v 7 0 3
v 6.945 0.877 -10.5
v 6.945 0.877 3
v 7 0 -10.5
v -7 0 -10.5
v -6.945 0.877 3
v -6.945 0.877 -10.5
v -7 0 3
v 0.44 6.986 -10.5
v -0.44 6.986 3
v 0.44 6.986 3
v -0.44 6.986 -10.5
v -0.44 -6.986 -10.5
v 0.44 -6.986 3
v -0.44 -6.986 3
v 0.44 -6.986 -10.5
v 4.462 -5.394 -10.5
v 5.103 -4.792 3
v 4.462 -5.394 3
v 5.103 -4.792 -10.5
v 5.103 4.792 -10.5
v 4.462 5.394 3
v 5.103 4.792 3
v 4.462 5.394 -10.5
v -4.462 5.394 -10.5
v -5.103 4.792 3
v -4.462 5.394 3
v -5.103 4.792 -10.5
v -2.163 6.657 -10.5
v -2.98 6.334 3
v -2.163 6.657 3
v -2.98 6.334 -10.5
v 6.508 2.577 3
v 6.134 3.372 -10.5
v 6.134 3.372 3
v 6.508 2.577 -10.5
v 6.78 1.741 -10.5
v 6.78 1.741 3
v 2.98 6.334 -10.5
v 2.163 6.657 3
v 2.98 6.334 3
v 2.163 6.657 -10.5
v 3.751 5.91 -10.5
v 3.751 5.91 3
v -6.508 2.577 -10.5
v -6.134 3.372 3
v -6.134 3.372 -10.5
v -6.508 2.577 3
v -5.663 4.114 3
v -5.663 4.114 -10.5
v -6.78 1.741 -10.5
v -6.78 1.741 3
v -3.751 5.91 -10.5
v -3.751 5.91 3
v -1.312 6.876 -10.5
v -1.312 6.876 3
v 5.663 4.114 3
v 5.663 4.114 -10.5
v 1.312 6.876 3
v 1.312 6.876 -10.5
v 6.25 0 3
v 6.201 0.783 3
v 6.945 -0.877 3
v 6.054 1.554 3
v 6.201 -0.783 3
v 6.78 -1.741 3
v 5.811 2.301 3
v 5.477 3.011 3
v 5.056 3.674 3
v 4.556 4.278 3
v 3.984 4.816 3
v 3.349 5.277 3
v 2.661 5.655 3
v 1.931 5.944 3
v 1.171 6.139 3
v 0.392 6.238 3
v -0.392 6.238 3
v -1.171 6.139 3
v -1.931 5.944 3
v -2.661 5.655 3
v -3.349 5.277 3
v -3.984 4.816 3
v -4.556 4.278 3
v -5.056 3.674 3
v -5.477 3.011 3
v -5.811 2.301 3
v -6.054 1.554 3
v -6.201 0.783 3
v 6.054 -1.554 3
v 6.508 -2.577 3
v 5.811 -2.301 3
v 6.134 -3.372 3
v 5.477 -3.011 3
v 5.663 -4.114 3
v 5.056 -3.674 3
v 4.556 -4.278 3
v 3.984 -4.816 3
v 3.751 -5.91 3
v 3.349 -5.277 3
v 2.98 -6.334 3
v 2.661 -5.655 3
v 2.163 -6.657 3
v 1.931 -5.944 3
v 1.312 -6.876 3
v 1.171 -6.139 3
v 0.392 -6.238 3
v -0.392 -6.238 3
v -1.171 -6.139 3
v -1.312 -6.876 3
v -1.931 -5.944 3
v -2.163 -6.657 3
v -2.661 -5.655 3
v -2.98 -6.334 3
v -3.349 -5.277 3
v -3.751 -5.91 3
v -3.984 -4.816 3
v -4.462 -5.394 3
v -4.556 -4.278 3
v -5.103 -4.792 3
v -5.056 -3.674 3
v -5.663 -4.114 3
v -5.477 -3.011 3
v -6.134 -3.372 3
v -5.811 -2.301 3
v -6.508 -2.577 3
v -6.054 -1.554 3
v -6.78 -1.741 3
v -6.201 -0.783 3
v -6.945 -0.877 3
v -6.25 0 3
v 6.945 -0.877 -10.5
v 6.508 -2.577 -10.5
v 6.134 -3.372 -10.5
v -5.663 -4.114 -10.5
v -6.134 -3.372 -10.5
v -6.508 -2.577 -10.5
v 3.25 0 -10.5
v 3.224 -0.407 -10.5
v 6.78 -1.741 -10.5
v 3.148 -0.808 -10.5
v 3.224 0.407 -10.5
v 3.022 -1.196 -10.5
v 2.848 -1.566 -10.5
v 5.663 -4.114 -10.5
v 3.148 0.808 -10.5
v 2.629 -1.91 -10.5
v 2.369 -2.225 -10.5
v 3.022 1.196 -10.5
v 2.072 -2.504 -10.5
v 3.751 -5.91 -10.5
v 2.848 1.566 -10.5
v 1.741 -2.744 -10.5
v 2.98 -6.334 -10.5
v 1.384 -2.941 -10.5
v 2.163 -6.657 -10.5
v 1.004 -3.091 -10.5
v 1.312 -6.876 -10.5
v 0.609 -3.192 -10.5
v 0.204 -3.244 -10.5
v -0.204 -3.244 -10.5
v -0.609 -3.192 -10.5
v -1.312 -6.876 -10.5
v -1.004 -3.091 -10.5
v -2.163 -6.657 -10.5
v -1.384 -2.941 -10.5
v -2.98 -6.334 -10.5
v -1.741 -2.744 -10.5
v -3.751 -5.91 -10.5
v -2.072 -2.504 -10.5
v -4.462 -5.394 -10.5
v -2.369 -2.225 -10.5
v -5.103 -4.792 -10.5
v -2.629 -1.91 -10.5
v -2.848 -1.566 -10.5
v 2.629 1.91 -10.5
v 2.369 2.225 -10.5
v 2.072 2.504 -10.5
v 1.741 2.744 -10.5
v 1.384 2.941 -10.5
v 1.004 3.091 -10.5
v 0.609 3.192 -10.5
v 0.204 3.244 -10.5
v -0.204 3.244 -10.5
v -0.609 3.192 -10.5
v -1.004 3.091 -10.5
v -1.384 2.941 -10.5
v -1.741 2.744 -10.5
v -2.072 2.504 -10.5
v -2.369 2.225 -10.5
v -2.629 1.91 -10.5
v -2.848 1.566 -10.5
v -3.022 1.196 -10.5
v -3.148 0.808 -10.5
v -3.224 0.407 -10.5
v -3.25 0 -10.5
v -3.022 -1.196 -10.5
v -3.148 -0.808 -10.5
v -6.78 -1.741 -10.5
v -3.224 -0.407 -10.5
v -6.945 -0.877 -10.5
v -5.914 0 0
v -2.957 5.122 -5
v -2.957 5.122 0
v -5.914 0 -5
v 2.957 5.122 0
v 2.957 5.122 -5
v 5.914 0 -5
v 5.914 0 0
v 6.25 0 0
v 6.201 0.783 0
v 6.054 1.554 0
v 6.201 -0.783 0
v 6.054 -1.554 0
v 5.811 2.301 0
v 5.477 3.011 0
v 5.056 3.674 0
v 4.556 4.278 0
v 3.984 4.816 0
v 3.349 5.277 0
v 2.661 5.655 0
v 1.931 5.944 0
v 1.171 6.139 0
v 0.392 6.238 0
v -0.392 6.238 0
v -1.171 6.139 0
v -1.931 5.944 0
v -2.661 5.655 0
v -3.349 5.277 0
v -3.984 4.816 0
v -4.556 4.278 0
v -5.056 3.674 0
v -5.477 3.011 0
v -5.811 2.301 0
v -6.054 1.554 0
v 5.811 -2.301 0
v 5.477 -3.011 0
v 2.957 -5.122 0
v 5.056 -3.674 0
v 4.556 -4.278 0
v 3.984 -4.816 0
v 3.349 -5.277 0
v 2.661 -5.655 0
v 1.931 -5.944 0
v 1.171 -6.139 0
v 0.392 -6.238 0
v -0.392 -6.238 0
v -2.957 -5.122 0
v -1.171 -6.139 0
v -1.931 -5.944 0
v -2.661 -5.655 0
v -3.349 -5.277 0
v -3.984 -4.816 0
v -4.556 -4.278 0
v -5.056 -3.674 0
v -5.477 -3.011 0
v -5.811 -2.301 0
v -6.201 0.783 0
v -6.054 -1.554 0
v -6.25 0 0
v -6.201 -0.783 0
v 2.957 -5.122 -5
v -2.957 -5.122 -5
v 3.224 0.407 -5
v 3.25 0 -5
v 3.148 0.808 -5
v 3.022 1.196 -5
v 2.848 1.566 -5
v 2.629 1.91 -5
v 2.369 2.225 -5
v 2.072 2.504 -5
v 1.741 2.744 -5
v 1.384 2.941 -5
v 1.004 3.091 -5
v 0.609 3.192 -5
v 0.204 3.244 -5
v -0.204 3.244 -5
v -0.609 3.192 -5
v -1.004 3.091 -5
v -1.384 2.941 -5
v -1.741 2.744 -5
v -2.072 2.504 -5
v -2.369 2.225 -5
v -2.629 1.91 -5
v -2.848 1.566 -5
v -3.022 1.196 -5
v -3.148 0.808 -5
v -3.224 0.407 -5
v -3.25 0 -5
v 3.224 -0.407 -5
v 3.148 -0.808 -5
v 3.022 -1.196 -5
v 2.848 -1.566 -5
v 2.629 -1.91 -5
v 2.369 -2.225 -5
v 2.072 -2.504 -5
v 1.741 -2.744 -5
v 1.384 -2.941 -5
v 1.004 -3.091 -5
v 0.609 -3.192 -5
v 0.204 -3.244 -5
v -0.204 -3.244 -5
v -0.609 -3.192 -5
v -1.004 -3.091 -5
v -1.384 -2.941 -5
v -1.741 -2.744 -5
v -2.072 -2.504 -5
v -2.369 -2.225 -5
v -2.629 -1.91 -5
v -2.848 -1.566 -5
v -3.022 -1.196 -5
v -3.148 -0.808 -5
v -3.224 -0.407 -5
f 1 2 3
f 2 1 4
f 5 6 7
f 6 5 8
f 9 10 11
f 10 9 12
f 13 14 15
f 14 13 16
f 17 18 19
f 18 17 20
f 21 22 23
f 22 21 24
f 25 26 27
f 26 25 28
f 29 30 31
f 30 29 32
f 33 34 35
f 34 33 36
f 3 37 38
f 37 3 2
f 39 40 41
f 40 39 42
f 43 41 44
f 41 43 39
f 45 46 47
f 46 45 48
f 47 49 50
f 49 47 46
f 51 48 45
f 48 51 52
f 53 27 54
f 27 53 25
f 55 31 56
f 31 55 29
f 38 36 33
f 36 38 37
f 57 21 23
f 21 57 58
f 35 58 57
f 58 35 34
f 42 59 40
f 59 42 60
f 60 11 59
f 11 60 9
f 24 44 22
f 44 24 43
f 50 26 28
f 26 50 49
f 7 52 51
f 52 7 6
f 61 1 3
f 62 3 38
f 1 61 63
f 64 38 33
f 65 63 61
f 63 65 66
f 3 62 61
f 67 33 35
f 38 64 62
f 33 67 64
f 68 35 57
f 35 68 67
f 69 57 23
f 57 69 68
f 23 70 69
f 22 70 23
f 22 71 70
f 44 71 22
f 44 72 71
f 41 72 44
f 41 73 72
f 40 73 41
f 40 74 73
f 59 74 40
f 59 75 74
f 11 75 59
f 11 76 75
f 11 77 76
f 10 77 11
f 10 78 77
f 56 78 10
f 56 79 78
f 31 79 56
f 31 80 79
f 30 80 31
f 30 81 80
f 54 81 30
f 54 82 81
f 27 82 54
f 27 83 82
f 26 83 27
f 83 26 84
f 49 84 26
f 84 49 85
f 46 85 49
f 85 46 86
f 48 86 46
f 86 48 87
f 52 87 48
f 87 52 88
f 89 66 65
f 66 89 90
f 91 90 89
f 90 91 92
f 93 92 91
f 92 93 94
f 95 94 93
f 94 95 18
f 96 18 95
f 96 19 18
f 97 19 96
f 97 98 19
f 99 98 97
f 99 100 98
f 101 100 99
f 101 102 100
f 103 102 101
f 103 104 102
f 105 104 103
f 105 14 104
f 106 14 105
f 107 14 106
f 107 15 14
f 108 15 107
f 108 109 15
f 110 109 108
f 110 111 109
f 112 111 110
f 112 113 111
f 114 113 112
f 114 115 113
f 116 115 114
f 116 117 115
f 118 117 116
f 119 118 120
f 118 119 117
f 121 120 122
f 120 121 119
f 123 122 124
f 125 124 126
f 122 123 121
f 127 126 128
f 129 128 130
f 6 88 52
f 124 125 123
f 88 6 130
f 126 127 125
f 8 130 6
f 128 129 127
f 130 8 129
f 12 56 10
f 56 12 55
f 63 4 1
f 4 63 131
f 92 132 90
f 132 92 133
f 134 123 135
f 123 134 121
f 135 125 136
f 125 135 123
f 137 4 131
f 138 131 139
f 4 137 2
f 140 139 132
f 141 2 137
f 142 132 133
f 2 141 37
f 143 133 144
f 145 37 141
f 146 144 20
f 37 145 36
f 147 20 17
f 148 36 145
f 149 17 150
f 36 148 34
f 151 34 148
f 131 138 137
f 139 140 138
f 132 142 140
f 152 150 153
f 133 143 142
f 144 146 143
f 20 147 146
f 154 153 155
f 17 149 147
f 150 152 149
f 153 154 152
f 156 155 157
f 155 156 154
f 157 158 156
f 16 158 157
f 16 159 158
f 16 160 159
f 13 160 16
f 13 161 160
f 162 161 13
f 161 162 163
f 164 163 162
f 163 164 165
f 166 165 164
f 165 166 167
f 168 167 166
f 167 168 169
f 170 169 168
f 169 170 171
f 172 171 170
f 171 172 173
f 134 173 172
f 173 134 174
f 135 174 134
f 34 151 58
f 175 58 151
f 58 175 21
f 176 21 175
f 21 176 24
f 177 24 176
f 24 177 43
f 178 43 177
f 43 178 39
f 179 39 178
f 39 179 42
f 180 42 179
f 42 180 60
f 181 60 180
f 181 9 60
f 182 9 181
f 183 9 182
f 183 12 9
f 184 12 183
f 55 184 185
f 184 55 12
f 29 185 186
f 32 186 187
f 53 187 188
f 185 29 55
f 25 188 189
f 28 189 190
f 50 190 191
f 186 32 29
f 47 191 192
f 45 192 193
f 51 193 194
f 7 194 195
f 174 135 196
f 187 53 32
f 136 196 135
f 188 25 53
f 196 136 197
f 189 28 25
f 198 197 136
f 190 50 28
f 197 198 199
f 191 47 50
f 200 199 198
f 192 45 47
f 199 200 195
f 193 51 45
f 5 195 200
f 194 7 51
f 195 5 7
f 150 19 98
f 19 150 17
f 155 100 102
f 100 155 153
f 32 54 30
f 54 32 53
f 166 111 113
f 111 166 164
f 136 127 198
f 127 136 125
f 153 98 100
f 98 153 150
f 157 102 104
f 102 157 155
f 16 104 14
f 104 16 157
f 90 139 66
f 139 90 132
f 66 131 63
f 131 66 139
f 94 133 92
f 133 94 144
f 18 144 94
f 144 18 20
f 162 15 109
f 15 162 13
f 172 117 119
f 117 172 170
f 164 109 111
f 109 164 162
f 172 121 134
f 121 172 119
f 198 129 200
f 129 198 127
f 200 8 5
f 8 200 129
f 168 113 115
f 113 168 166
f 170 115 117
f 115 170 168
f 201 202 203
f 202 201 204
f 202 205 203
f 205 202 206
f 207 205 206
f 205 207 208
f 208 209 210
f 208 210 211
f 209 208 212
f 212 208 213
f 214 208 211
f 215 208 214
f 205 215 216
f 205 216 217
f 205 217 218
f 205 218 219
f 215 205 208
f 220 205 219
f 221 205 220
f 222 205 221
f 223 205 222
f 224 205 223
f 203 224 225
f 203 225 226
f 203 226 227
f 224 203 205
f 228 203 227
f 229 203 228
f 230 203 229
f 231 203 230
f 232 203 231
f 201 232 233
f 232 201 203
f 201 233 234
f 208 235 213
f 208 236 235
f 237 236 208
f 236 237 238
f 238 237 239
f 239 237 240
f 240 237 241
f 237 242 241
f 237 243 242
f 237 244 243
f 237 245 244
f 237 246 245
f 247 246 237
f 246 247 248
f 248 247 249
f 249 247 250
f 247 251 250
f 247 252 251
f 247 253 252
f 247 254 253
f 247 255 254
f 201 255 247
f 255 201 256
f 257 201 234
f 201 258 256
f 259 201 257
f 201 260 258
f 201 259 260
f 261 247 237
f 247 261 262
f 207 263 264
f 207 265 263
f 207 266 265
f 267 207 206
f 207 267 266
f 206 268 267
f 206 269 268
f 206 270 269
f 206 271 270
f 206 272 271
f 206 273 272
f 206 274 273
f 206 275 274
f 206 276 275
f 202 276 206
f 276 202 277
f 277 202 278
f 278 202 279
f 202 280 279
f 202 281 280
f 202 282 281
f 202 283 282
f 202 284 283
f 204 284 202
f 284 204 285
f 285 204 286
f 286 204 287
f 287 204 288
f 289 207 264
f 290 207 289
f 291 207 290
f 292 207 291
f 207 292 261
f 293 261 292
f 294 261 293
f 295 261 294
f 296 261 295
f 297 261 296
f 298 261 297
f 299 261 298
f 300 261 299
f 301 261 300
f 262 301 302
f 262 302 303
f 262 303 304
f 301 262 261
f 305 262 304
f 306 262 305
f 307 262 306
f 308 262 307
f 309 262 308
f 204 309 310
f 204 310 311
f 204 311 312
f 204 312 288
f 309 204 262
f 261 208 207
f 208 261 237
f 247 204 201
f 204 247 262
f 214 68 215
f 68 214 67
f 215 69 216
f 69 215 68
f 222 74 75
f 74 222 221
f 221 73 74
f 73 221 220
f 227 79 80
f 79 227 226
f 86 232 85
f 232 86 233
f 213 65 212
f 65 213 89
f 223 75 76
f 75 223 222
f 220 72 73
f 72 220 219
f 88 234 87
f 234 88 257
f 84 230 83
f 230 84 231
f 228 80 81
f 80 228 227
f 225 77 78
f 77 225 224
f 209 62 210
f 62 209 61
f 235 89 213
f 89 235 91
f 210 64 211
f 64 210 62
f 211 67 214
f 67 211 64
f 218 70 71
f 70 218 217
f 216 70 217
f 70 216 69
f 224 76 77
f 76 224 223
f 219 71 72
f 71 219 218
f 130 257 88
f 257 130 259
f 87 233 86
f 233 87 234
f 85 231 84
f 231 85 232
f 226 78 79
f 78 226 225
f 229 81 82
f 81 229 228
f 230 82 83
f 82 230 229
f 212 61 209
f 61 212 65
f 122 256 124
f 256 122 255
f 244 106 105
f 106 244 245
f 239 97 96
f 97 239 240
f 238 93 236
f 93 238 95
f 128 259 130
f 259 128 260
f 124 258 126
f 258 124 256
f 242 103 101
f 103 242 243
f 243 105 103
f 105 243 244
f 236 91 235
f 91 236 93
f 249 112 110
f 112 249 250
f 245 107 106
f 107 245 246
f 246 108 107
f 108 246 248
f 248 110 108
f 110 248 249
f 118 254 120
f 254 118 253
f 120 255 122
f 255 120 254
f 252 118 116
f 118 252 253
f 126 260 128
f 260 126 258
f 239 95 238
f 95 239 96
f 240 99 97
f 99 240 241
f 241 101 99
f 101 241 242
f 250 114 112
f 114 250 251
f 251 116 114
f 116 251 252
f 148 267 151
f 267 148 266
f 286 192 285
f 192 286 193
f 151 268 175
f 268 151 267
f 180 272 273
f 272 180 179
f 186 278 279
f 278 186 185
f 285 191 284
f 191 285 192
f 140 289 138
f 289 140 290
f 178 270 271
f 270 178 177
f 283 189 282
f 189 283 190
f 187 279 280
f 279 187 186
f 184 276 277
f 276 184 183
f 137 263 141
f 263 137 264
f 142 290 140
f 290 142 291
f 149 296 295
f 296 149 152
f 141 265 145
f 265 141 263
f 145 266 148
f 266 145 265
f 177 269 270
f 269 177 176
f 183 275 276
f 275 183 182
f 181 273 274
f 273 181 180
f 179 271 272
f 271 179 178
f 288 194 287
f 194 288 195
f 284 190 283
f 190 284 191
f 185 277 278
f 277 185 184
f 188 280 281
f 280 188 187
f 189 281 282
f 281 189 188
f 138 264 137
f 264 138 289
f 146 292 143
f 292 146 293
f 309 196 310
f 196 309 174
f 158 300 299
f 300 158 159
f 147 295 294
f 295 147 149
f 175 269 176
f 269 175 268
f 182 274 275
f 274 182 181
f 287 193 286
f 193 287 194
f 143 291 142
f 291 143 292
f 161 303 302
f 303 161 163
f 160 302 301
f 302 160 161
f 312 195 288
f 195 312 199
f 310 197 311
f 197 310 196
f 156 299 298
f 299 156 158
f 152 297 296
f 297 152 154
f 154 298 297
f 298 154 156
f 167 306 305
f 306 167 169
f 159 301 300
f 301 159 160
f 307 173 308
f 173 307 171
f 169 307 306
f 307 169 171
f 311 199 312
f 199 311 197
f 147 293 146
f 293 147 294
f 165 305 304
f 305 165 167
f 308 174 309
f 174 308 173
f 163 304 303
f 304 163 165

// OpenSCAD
$fn = 50;

difference() {
	union() {
		translate(v = [0, 0, -10.5]) {
			cylinder(h = 13.5, r = 7.0);
		}
		#translate(v = [0, 0, -12.0]) {
			cylinder(h = 12, r = 2.875);
		}
	}
	union() {
		translate(v = [0, 0, 0]) {
			rotate(a = [0, 0, 0]) {
				difference() {
					union() {
						translate(v = [0, 0, -5]) {
							linear_extrude(height = 5) {
								polygon(points = [[5.914249999999999, 0.0], [2.957125, 5.1218907443321156], [-2.9571249999999982, 5.1218907443321156], [-5.914249999999999, 7.242867331857232e-16], [-2.9571250000000022, -5.121890744332115], [2.9571249999999956, -5.121890744332118]]);
							}
						}
					}
					union();
				}
			}
		}
		#cylinder(h = 3, r = 6.25);
		#translate(v = [0, 0, -100.0]) {
			cylinder(h = 200, r = 3.25);
		}
	}
}
